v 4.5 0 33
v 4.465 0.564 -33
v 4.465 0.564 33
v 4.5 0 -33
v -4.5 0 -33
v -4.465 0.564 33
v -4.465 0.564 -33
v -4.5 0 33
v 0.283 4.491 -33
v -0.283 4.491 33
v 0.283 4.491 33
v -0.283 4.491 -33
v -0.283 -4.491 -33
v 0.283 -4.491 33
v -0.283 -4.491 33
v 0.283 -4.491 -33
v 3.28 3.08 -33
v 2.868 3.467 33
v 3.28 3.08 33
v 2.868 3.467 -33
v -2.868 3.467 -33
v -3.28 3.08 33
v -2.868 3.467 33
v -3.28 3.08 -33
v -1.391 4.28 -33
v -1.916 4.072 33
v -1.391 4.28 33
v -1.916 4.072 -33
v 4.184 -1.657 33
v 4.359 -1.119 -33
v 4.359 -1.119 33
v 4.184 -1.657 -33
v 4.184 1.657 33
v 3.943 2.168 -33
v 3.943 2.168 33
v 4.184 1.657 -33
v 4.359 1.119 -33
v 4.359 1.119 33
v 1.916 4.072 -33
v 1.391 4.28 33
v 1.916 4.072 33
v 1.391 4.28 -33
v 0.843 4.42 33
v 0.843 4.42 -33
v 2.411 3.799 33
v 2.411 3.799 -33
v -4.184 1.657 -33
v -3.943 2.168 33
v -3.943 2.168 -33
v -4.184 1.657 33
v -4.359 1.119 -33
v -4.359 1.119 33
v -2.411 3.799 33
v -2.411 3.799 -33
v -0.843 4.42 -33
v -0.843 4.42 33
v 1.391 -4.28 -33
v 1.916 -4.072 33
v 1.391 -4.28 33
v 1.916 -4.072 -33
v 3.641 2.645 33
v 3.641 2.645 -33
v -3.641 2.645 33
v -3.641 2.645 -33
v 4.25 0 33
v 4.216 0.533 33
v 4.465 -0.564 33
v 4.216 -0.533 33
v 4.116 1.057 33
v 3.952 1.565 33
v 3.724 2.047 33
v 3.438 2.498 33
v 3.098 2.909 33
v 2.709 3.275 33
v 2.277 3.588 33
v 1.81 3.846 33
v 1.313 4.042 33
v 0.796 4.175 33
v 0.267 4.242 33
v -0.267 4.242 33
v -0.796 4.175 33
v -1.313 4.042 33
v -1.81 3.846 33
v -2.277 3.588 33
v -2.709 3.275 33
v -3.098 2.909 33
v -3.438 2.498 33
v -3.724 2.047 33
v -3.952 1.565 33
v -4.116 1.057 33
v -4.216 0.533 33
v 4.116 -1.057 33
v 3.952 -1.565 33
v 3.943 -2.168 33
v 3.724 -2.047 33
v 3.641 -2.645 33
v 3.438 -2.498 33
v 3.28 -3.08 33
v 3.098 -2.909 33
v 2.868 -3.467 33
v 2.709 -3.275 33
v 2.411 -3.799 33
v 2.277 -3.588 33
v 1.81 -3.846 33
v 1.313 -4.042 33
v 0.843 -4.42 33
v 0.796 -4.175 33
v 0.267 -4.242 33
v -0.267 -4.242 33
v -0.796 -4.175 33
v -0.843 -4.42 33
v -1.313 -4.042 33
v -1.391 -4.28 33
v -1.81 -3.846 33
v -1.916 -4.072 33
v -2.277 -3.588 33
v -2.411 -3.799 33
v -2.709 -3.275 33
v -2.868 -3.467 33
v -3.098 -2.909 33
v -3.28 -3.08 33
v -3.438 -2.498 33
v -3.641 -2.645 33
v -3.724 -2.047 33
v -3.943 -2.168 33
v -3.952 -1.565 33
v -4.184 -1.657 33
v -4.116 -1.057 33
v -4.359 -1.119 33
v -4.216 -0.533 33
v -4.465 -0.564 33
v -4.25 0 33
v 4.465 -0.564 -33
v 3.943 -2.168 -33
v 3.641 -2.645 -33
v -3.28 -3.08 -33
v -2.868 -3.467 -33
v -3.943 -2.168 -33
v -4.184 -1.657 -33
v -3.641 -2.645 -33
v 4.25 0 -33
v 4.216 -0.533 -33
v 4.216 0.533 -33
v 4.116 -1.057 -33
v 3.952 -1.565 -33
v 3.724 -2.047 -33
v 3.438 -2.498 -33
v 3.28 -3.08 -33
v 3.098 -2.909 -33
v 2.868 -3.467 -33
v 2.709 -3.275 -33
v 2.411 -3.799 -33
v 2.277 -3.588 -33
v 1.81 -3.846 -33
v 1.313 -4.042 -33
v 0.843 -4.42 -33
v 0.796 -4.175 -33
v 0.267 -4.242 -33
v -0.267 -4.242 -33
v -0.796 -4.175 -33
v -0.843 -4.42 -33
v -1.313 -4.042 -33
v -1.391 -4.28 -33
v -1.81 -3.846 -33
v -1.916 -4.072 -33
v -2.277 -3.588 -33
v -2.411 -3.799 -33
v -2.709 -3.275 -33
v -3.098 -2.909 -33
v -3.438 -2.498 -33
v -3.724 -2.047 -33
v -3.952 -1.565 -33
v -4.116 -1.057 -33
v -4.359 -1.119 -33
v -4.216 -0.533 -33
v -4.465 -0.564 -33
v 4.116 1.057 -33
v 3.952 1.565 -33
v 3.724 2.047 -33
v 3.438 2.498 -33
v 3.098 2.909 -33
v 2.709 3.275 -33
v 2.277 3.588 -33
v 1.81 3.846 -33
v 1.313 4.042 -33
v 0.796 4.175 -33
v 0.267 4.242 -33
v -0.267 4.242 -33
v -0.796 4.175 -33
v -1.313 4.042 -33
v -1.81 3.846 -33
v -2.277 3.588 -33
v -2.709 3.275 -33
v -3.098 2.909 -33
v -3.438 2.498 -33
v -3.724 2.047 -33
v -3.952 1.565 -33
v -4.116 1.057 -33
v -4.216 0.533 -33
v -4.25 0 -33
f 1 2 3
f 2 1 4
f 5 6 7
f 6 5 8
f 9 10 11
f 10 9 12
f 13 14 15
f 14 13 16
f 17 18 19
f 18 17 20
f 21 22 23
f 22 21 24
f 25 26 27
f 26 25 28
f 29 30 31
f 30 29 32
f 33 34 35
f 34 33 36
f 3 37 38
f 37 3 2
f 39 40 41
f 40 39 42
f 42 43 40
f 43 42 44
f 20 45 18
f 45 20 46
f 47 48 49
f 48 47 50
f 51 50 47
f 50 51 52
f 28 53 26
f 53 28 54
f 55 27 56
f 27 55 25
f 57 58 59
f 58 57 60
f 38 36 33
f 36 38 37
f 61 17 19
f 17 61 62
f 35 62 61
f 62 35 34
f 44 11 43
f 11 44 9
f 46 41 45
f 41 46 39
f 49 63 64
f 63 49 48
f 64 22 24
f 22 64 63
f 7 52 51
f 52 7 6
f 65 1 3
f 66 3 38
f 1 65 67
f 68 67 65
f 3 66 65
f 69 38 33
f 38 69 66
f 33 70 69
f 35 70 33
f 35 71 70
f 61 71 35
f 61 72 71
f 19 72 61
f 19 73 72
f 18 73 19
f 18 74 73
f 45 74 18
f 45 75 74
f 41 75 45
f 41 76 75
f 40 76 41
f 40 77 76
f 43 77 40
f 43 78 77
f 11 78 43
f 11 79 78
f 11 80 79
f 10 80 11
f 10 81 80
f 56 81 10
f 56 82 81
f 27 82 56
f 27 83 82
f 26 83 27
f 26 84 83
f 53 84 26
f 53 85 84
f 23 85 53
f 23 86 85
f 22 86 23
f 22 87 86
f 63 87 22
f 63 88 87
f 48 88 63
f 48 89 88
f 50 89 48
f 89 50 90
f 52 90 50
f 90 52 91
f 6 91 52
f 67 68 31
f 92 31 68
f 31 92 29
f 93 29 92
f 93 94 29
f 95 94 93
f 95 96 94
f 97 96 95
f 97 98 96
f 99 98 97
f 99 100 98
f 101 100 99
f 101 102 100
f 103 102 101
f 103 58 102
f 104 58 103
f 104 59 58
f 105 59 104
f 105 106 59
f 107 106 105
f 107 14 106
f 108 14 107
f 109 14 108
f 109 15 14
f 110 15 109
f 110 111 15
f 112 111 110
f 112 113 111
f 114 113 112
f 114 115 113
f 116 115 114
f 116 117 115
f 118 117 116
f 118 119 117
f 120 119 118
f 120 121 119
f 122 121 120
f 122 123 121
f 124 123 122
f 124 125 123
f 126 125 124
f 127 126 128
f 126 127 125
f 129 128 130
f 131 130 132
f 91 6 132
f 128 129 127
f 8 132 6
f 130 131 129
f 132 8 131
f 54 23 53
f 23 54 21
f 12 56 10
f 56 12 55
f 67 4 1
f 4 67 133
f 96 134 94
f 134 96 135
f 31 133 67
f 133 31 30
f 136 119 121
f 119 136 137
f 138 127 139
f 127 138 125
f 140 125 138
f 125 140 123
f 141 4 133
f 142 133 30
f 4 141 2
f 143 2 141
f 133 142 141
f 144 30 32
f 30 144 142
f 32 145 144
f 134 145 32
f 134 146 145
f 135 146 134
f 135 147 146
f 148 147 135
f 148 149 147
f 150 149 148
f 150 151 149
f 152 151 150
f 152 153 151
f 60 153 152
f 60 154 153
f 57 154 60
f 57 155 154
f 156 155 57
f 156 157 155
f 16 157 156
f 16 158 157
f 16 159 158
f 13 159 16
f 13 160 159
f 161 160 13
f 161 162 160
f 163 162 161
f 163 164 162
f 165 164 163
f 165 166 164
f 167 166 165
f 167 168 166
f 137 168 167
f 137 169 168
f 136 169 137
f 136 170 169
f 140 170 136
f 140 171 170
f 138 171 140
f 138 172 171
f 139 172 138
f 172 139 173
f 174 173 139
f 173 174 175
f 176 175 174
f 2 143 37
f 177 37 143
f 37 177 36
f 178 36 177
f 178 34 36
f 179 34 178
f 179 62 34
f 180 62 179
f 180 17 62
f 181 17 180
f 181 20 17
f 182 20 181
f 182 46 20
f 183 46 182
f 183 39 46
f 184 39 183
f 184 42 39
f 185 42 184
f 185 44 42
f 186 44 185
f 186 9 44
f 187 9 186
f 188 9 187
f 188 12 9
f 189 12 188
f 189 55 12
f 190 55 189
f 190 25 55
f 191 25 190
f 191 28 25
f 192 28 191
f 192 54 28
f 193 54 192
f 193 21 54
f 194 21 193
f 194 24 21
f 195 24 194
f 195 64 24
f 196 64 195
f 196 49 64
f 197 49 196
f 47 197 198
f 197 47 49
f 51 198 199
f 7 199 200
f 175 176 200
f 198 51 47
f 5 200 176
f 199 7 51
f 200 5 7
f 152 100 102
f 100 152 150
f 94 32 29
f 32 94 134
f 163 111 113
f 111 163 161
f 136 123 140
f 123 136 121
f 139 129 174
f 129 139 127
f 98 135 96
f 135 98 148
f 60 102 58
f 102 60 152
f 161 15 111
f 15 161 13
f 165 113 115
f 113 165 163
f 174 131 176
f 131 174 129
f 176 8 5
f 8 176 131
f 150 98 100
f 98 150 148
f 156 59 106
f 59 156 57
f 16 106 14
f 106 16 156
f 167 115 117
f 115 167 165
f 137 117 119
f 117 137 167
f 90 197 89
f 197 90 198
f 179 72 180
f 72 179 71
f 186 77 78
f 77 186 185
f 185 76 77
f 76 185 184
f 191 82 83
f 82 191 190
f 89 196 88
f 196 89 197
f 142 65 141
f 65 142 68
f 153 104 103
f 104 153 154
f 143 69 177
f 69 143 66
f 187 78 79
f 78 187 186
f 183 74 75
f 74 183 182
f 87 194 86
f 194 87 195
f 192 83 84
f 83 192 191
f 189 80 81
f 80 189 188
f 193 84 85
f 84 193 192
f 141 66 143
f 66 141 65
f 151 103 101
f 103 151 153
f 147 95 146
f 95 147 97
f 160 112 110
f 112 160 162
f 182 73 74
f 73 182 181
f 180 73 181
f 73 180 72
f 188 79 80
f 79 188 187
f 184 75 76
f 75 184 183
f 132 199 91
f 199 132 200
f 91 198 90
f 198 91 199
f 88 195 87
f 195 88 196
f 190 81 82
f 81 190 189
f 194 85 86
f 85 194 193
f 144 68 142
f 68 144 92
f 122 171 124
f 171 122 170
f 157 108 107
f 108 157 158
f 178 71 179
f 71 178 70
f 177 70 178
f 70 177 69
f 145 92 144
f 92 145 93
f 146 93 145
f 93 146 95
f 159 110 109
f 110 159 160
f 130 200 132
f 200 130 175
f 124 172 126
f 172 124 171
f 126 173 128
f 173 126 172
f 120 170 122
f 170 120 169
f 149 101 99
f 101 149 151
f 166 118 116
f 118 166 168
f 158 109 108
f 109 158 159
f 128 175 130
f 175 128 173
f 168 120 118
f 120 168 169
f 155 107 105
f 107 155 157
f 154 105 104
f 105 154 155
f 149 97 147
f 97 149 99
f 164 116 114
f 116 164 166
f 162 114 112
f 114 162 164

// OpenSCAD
$fn = 50;


difference() {
	union() {
		translate(v = [0, 0, -33.0000000000]) {
			cylinder(h = 66, r = 4.5000000000);
		}
	}
	union() {
		translate(v = [0, 0, -100.0000000000]) {
			cylinder(h = 200, r = 4.2500000000);
		}
	}
}
